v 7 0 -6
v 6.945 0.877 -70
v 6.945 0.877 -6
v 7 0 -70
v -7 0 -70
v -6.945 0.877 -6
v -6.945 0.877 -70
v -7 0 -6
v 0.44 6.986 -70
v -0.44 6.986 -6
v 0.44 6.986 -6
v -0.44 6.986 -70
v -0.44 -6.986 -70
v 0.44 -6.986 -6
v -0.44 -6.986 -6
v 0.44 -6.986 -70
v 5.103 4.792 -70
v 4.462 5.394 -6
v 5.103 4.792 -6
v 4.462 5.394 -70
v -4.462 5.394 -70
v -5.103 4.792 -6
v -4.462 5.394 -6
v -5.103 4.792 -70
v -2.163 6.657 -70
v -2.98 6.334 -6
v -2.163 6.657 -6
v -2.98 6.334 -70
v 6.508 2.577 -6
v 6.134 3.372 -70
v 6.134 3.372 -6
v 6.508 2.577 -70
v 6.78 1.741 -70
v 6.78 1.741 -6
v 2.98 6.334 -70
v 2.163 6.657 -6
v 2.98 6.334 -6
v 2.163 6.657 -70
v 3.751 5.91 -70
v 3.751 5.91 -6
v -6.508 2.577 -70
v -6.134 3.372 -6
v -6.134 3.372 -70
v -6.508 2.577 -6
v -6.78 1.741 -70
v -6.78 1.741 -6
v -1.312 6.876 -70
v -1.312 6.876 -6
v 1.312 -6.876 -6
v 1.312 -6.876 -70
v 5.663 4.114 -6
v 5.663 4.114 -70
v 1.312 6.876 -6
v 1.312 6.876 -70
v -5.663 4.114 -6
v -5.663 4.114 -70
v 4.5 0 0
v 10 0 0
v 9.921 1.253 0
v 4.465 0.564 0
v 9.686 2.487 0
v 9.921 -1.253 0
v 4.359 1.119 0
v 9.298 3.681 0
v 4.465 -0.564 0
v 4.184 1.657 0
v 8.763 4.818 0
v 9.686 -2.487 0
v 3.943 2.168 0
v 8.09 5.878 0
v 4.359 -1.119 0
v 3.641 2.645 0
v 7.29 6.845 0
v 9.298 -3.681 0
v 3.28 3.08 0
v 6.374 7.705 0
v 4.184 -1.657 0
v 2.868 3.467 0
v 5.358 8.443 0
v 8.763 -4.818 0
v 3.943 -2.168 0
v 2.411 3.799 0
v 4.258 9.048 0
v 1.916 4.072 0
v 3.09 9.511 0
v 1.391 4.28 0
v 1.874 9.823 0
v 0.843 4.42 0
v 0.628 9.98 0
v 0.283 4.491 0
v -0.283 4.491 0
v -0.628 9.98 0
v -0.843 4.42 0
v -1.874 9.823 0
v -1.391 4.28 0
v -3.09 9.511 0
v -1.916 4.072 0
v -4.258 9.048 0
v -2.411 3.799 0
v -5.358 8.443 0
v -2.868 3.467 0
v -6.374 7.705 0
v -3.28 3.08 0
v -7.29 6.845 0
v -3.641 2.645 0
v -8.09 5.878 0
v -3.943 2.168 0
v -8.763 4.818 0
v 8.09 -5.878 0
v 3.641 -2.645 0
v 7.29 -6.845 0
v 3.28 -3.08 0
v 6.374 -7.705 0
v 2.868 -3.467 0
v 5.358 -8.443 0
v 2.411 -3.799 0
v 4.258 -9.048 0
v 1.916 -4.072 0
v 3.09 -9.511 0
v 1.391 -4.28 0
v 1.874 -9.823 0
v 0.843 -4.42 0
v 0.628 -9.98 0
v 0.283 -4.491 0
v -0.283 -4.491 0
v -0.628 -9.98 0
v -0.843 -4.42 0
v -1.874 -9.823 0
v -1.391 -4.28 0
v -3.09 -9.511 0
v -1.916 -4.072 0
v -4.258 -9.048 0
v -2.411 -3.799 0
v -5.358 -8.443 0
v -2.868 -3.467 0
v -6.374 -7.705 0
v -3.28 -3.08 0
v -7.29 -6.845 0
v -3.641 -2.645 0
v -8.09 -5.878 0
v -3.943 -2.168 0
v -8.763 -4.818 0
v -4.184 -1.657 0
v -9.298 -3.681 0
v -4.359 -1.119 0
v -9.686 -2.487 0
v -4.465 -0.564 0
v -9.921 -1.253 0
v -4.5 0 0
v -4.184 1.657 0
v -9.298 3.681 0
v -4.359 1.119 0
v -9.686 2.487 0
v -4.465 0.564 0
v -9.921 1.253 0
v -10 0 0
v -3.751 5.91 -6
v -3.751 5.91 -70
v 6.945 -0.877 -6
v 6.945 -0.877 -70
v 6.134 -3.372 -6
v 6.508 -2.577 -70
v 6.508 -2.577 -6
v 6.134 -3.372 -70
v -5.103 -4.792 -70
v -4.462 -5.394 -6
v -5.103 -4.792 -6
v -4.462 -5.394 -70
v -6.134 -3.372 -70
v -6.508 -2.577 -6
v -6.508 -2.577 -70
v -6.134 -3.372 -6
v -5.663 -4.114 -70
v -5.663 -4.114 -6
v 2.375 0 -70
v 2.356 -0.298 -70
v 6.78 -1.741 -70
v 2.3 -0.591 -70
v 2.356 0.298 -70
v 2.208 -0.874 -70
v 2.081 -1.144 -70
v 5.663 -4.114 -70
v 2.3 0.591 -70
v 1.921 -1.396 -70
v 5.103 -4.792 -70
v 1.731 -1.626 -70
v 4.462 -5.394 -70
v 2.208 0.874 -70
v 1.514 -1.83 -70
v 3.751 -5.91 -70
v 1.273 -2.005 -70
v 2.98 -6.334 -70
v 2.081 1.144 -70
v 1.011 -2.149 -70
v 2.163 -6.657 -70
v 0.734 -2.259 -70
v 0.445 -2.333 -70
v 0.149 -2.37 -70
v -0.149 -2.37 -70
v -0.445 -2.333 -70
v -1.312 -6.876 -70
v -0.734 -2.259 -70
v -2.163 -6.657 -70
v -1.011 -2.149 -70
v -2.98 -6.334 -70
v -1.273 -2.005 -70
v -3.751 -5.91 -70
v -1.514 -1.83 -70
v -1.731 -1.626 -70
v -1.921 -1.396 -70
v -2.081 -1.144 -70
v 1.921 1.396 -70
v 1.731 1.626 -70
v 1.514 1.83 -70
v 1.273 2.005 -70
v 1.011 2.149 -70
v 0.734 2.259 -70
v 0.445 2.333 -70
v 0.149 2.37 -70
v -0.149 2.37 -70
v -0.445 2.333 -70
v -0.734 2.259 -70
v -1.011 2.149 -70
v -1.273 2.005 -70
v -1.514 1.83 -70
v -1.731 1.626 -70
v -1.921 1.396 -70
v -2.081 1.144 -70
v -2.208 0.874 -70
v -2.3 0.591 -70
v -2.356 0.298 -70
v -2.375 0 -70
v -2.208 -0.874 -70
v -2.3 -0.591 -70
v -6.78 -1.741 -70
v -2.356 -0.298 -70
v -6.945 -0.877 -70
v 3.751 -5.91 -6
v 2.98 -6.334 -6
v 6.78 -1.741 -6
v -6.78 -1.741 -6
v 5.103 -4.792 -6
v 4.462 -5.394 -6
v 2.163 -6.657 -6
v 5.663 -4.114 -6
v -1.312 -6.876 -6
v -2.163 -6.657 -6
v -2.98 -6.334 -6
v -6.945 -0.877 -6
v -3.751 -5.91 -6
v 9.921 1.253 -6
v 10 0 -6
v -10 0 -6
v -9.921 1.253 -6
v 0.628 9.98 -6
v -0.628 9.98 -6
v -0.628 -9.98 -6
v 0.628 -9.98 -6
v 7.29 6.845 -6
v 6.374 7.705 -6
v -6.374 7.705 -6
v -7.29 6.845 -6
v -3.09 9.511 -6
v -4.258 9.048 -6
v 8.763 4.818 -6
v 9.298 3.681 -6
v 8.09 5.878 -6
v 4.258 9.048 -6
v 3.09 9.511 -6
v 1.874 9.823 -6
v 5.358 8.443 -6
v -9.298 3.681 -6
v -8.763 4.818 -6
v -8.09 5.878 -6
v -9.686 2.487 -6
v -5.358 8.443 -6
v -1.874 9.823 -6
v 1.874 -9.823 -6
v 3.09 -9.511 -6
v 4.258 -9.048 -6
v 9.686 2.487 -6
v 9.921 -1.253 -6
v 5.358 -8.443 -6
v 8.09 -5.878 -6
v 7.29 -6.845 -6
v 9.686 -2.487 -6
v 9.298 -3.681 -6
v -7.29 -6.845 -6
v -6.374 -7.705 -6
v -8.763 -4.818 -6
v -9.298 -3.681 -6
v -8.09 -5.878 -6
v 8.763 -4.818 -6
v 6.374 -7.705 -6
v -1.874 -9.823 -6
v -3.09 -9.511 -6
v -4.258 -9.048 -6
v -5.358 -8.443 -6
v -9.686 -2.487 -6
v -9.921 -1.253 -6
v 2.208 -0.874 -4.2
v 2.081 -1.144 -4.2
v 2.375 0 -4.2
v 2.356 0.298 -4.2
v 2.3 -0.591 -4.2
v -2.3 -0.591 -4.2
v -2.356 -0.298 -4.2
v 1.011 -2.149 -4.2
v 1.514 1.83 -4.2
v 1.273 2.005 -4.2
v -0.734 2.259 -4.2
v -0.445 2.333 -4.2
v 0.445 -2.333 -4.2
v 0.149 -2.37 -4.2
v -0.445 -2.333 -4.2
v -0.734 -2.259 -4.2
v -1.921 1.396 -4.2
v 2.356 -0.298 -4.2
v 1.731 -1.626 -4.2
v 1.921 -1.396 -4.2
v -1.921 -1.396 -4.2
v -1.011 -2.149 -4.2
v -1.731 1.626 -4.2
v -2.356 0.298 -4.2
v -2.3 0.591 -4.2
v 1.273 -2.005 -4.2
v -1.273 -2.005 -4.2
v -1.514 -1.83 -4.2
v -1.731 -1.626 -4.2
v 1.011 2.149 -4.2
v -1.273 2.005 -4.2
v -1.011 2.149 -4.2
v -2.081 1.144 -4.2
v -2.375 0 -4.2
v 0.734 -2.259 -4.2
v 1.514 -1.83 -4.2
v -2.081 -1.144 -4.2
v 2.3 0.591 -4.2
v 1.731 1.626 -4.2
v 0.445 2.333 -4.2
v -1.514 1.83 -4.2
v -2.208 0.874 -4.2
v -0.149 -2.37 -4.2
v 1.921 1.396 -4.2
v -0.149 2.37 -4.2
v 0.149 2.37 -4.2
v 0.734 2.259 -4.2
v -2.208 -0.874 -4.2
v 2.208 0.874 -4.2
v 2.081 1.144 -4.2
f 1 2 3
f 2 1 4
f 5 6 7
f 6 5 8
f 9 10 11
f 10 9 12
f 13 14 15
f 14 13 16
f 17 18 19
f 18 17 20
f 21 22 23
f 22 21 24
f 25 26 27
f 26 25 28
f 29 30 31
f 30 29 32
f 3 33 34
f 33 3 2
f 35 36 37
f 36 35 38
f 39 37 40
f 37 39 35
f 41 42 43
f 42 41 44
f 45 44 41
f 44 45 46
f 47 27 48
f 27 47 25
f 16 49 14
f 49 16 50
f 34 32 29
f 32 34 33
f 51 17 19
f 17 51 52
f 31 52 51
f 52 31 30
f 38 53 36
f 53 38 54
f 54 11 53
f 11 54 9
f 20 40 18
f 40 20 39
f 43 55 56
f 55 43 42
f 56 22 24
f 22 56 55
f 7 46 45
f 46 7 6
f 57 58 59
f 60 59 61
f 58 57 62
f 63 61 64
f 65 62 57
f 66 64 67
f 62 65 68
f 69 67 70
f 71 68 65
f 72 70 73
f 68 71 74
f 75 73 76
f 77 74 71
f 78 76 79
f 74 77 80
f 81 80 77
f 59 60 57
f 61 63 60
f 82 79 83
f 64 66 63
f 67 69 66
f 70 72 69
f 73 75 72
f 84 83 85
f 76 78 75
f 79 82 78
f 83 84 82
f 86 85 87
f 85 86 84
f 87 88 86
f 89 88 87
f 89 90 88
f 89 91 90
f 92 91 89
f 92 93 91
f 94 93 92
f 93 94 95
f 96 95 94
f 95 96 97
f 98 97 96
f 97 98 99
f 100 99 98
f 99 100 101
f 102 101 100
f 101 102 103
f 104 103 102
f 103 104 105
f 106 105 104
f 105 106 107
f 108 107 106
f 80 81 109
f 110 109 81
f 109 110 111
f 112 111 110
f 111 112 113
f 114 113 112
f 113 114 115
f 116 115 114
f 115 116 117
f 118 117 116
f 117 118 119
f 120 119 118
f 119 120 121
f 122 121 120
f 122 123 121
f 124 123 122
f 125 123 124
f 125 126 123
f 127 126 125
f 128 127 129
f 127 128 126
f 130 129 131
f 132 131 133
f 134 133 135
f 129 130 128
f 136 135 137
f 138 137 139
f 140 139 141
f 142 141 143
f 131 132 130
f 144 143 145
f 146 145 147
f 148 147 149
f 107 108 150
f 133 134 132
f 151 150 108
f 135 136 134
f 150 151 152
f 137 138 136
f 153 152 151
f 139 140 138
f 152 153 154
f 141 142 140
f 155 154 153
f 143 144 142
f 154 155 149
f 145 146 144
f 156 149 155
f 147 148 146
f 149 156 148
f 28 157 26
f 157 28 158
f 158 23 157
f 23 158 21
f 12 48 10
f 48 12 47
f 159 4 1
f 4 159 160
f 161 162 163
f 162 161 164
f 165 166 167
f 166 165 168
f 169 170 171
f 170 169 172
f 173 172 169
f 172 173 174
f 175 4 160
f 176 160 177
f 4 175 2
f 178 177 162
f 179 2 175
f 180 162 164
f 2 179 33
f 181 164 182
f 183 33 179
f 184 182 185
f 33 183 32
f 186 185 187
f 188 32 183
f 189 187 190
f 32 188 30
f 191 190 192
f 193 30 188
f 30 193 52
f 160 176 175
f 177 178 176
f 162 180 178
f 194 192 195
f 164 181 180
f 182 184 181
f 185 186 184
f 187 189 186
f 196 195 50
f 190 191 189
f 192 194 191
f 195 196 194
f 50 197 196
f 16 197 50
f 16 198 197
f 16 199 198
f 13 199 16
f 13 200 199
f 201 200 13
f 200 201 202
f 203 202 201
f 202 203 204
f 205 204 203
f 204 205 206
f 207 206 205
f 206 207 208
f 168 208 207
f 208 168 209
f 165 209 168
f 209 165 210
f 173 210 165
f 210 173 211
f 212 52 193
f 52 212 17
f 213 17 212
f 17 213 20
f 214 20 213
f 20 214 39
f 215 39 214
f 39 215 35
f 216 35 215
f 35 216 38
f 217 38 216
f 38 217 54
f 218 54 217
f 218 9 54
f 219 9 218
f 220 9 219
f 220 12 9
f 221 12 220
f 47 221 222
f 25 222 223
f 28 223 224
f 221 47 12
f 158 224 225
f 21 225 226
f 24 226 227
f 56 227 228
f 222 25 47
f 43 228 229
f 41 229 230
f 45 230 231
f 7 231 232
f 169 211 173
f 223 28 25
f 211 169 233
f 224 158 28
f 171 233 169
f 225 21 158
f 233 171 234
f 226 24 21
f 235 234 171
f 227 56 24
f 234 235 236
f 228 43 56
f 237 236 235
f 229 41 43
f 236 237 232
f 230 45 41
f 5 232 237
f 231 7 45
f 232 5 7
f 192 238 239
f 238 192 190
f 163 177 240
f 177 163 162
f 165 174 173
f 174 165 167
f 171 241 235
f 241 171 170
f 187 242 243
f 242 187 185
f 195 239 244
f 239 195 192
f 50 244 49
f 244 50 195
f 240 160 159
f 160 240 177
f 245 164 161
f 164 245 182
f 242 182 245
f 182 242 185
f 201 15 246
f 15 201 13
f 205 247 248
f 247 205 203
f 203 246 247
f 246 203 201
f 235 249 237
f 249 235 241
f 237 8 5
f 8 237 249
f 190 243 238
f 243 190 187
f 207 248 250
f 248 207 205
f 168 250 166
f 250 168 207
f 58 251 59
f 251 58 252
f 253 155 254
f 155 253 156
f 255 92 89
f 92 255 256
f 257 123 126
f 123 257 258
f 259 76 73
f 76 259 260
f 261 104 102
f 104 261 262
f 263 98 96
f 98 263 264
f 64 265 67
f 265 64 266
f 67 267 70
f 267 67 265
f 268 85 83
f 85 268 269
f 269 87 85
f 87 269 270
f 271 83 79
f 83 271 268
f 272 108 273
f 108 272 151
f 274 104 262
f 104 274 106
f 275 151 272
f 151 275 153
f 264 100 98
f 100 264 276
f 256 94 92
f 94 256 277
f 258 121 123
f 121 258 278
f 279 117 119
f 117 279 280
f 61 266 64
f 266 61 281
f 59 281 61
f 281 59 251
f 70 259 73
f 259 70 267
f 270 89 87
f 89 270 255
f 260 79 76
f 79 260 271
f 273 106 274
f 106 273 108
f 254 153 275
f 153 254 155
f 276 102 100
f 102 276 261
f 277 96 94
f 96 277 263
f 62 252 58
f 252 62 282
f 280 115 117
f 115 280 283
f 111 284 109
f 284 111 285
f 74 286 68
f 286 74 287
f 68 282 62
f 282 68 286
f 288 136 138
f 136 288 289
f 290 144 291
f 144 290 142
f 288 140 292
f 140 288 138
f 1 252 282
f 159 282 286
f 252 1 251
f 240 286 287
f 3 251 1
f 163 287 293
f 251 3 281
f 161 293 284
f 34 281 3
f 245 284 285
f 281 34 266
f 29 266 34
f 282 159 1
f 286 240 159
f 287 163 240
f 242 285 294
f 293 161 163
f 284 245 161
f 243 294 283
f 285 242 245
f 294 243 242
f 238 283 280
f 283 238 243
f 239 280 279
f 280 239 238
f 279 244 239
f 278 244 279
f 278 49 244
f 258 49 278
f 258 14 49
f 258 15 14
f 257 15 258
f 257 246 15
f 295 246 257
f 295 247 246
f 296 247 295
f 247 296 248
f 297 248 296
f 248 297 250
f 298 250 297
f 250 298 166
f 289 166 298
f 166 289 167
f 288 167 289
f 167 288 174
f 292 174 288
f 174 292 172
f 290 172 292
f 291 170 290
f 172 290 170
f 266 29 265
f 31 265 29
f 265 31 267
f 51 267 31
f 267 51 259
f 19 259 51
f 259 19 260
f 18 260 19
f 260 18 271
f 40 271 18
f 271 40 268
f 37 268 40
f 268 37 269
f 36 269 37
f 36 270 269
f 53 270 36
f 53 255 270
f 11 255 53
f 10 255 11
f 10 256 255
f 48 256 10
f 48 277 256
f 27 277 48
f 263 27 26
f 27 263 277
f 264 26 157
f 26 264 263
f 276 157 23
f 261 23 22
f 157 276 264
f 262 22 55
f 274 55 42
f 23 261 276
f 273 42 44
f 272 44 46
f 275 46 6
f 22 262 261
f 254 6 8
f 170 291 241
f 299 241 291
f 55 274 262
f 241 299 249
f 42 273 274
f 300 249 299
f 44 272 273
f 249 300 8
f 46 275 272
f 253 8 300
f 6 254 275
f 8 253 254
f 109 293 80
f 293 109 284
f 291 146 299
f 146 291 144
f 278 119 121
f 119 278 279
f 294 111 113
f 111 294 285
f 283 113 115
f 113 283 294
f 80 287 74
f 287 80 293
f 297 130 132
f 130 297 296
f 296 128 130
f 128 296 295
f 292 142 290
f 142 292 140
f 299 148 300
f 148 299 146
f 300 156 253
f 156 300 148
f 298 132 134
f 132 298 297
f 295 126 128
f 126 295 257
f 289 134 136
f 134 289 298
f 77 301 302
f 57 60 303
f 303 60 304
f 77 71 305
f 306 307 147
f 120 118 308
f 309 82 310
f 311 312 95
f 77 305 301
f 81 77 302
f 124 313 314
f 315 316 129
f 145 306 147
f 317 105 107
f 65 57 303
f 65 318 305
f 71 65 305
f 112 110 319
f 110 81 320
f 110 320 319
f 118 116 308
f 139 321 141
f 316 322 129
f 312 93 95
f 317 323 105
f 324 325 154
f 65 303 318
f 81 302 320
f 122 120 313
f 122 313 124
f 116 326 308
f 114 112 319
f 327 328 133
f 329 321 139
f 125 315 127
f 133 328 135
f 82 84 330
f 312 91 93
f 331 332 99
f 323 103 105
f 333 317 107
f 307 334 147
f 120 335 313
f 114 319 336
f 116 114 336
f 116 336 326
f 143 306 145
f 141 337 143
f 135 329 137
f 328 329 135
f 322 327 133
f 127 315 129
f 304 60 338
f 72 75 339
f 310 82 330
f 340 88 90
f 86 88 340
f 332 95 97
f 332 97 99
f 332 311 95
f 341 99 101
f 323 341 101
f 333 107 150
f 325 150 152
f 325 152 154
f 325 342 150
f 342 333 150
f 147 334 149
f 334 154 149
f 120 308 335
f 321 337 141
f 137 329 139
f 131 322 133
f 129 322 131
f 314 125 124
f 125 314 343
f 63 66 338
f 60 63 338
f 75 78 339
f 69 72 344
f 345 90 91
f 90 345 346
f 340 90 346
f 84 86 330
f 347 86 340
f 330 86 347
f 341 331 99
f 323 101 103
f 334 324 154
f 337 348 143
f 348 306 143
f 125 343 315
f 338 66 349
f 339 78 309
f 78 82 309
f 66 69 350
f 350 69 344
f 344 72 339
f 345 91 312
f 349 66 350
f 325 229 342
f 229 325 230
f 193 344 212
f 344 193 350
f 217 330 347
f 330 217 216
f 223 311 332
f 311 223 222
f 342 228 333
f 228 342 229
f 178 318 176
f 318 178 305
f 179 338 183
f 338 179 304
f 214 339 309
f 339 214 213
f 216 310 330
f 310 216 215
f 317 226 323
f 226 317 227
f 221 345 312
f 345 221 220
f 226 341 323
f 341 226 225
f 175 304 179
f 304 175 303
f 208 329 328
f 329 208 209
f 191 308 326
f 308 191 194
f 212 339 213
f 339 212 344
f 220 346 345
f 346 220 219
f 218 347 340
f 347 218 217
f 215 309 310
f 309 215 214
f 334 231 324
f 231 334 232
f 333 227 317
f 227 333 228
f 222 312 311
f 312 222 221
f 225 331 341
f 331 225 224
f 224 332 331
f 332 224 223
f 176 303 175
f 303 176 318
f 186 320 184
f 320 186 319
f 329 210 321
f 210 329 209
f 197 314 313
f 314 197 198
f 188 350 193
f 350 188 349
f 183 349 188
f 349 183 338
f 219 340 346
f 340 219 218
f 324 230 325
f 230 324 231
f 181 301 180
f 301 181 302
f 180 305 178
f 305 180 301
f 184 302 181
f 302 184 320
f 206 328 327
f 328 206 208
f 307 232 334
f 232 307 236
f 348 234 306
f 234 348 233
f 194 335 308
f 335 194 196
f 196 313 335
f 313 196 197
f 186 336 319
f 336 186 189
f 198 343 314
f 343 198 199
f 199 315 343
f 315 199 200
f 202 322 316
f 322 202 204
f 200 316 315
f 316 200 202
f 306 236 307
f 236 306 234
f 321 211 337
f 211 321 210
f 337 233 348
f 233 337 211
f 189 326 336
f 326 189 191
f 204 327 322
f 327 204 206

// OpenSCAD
$fn = 50;


difference() {
	union() {
		translate(v = [0, 0, -70.0000000000]) {
			cylinder(h = 70, r = 7.0000000000);
		}
		translate(v = [0, 0, -6.0000000000]) {
			cylinder(h = 6, r = 10.0000000000);
		}
	}
	union() {
		translate(v = [0, 0, 0]) {
			rotate(a = [0, 0, 0]) {
				difference() {
					union() {
						#translate(v = [0, 0, -70.0000000000]) {
							cylinder(h = 70, r = 2.2500000000);
						}
						#translate(v = [0, 0, -4.2000000000]) {
							cylinder(h = 4.2000000000, r = 7.0000000000, r1 = 2.3750000000, r2 = 4.5000000000);
						}
						#translate(v = [0, 0, -70.0000000000]) {
							cylinder(h = 70, r = 2.3750000000);
						}
						#translate(v = [0, 0, -70.0000000000]) {
							cylinder(h = 70, r = 2.2500000000);
						}
					}
					union();
				}
			}
		}
	}
}
